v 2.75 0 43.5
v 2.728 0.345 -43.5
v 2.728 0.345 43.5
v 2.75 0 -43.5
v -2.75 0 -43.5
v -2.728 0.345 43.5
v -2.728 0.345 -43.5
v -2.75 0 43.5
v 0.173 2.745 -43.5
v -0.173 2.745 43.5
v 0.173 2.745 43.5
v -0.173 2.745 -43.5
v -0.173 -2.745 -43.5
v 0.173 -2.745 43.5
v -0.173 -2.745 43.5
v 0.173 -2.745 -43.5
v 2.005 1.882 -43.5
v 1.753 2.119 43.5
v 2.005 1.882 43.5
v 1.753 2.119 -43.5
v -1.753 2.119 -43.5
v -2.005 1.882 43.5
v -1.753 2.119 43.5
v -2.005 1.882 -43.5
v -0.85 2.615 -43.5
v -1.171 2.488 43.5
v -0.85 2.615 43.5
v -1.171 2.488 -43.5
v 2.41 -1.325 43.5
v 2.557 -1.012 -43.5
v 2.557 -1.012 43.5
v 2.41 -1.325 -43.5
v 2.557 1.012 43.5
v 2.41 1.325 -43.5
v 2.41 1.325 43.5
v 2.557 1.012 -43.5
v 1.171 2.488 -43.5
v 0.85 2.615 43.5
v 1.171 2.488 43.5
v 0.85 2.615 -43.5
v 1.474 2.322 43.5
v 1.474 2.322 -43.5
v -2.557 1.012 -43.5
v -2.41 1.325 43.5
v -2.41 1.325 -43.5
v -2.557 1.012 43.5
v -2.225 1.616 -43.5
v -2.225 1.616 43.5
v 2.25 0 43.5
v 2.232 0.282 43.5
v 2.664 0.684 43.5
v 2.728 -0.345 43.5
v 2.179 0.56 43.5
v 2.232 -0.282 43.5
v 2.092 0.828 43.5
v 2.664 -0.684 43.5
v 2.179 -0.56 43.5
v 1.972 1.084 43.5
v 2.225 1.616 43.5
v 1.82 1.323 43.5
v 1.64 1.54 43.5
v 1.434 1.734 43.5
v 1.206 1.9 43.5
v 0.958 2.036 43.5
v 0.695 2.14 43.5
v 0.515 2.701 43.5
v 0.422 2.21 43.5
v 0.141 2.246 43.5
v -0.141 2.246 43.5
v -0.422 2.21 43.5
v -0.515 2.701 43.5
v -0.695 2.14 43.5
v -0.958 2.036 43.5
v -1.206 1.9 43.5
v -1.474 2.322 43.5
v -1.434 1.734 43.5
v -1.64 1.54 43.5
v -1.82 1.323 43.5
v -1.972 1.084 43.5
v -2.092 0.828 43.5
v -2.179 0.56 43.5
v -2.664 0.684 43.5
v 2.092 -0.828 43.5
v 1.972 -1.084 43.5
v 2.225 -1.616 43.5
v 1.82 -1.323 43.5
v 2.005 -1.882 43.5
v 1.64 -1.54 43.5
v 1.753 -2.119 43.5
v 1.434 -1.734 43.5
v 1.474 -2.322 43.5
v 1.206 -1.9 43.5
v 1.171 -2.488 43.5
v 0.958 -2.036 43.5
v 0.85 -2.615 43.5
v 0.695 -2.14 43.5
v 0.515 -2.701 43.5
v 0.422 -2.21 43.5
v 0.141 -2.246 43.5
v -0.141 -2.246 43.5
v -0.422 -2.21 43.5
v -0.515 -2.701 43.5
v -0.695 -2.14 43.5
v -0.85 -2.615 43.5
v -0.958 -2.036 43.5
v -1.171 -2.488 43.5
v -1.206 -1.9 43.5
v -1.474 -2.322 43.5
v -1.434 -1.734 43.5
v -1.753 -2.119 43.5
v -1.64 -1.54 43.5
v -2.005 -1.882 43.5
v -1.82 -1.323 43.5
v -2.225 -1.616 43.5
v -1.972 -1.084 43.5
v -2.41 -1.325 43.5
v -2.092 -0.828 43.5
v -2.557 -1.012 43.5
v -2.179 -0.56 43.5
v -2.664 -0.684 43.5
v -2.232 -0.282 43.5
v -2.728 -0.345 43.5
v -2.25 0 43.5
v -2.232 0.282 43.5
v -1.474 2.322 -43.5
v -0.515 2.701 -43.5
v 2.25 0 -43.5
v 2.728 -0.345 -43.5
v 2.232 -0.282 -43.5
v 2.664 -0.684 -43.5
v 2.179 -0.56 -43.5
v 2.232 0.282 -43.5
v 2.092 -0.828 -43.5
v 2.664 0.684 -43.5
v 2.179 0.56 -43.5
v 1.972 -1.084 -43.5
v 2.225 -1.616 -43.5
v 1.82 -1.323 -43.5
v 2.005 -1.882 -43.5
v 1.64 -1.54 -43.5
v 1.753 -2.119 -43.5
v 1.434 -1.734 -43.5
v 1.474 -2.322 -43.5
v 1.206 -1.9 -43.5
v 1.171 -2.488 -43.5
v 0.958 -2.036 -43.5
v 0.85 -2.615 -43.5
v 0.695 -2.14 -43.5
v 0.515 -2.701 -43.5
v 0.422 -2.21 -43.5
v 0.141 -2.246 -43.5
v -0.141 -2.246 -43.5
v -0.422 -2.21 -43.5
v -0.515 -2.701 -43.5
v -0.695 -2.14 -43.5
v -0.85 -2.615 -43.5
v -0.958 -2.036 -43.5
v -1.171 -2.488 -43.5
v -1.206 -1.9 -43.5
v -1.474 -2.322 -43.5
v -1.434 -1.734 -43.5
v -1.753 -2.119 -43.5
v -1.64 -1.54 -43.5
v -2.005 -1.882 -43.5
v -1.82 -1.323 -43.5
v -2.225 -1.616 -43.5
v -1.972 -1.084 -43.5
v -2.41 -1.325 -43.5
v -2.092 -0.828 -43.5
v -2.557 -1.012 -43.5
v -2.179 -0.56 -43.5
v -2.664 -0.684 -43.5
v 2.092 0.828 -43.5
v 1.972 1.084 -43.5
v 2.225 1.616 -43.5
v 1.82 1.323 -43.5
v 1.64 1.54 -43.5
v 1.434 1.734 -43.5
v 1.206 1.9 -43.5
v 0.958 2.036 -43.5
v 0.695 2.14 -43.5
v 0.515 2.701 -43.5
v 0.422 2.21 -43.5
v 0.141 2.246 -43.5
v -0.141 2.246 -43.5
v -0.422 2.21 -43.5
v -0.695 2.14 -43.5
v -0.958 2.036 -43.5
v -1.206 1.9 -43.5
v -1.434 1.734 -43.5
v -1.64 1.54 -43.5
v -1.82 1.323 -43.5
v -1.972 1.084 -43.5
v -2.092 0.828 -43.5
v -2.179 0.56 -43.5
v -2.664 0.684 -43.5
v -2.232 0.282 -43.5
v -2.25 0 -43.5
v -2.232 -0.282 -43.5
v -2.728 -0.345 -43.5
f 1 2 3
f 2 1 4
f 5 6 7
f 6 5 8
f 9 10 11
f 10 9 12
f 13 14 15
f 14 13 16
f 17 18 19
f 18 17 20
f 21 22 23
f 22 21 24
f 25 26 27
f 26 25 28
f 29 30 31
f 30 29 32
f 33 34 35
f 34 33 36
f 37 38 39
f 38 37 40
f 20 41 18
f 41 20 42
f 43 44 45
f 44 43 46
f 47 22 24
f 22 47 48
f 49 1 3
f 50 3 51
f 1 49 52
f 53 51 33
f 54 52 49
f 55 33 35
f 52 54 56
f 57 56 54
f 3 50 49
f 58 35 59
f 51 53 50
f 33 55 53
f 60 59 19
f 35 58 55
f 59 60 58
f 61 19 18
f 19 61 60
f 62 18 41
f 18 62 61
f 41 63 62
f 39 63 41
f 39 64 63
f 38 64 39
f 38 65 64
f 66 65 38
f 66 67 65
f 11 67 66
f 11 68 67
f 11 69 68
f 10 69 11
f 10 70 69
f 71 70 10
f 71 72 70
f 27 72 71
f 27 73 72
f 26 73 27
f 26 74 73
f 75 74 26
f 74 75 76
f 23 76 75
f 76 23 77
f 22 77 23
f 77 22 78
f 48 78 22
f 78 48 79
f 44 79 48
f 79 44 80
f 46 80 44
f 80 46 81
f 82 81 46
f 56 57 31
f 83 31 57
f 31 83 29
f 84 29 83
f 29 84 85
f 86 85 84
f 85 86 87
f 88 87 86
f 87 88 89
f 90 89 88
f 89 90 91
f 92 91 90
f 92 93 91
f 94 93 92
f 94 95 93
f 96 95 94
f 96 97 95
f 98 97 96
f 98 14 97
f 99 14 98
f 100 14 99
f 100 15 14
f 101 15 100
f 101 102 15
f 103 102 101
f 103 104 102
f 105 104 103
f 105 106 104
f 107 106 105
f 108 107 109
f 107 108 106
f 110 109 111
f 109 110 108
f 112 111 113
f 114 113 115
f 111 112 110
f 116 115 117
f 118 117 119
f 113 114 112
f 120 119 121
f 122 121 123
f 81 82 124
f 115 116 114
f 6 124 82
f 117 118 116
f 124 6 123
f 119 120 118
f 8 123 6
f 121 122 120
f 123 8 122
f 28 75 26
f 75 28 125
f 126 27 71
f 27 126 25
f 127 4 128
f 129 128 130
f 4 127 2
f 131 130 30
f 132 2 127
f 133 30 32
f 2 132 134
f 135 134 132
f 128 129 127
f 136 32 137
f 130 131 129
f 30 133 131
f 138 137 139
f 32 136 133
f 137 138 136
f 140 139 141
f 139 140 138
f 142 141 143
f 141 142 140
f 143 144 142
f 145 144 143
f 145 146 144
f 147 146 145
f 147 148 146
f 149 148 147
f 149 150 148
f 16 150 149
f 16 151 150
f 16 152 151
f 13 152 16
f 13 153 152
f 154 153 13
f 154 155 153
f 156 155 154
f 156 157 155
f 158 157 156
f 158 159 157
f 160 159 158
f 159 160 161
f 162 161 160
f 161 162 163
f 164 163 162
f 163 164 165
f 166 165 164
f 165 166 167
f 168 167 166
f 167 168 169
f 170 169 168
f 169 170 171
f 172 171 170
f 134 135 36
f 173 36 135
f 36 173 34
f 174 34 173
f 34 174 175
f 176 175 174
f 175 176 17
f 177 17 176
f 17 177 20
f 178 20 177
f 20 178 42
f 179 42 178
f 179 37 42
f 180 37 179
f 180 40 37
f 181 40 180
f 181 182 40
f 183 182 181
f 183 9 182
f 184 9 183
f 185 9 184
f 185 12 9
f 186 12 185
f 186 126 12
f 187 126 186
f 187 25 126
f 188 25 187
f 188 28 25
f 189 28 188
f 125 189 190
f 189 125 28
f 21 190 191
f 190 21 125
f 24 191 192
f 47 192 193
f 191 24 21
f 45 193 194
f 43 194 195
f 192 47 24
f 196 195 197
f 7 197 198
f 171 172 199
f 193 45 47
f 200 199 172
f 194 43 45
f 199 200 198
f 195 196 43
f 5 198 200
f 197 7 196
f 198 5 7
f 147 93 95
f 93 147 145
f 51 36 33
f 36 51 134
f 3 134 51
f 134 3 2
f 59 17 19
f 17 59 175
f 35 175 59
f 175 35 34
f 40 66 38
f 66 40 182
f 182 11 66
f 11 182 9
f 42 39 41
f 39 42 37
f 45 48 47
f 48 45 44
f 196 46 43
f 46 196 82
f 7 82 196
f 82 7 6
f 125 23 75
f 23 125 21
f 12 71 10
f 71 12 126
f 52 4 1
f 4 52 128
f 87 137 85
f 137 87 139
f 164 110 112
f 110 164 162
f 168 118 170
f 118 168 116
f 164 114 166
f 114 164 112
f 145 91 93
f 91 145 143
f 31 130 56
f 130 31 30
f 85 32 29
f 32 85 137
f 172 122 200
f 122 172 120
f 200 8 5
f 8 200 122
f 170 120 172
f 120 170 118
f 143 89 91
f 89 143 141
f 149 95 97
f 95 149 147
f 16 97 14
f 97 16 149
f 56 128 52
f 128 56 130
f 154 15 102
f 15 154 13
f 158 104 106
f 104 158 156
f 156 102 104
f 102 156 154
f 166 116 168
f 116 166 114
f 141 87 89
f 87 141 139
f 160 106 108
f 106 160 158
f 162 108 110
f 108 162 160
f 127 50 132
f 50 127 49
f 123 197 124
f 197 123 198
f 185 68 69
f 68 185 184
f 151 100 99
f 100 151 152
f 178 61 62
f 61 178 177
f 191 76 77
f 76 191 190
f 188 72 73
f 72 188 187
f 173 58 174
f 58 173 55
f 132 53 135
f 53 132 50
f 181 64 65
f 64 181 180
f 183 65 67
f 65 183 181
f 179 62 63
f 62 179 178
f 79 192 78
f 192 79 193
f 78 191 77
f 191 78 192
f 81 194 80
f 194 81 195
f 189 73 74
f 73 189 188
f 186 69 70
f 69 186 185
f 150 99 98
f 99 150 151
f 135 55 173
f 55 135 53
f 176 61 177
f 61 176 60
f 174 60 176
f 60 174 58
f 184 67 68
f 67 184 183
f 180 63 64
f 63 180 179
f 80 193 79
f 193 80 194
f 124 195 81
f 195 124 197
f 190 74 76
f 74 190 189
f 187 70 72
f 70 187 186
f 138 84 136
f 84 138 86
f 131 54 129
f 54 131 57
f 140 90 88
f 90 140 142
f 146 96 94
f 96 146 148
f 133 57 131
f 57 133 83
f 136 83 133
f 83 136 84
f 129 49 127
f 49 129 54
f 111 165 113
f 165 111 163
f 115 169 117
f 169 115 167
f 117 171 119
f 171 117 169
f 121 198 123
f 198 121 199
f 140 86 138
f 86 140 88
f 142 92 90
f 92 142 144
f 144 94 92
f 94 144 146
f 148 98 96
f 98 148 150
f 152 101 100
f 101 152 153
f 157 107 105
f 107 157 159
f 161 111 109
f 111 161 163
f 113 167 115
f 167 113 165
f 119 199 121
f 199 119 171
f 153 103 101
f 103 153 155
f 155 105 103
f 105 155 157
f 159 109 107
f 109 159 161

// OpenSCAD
$fn = 50;


difference() {
	union() {
		translate(v = [0, 0, -43.5000000000]) {
			cylinder(h = 87, r = 2.7500000000);
		}
	}
	union() {
		translate(v = [0, 0, -100.0000000000]) {
			cylinder(h = 200, r = 2.2500000000);
		}
	}
}
